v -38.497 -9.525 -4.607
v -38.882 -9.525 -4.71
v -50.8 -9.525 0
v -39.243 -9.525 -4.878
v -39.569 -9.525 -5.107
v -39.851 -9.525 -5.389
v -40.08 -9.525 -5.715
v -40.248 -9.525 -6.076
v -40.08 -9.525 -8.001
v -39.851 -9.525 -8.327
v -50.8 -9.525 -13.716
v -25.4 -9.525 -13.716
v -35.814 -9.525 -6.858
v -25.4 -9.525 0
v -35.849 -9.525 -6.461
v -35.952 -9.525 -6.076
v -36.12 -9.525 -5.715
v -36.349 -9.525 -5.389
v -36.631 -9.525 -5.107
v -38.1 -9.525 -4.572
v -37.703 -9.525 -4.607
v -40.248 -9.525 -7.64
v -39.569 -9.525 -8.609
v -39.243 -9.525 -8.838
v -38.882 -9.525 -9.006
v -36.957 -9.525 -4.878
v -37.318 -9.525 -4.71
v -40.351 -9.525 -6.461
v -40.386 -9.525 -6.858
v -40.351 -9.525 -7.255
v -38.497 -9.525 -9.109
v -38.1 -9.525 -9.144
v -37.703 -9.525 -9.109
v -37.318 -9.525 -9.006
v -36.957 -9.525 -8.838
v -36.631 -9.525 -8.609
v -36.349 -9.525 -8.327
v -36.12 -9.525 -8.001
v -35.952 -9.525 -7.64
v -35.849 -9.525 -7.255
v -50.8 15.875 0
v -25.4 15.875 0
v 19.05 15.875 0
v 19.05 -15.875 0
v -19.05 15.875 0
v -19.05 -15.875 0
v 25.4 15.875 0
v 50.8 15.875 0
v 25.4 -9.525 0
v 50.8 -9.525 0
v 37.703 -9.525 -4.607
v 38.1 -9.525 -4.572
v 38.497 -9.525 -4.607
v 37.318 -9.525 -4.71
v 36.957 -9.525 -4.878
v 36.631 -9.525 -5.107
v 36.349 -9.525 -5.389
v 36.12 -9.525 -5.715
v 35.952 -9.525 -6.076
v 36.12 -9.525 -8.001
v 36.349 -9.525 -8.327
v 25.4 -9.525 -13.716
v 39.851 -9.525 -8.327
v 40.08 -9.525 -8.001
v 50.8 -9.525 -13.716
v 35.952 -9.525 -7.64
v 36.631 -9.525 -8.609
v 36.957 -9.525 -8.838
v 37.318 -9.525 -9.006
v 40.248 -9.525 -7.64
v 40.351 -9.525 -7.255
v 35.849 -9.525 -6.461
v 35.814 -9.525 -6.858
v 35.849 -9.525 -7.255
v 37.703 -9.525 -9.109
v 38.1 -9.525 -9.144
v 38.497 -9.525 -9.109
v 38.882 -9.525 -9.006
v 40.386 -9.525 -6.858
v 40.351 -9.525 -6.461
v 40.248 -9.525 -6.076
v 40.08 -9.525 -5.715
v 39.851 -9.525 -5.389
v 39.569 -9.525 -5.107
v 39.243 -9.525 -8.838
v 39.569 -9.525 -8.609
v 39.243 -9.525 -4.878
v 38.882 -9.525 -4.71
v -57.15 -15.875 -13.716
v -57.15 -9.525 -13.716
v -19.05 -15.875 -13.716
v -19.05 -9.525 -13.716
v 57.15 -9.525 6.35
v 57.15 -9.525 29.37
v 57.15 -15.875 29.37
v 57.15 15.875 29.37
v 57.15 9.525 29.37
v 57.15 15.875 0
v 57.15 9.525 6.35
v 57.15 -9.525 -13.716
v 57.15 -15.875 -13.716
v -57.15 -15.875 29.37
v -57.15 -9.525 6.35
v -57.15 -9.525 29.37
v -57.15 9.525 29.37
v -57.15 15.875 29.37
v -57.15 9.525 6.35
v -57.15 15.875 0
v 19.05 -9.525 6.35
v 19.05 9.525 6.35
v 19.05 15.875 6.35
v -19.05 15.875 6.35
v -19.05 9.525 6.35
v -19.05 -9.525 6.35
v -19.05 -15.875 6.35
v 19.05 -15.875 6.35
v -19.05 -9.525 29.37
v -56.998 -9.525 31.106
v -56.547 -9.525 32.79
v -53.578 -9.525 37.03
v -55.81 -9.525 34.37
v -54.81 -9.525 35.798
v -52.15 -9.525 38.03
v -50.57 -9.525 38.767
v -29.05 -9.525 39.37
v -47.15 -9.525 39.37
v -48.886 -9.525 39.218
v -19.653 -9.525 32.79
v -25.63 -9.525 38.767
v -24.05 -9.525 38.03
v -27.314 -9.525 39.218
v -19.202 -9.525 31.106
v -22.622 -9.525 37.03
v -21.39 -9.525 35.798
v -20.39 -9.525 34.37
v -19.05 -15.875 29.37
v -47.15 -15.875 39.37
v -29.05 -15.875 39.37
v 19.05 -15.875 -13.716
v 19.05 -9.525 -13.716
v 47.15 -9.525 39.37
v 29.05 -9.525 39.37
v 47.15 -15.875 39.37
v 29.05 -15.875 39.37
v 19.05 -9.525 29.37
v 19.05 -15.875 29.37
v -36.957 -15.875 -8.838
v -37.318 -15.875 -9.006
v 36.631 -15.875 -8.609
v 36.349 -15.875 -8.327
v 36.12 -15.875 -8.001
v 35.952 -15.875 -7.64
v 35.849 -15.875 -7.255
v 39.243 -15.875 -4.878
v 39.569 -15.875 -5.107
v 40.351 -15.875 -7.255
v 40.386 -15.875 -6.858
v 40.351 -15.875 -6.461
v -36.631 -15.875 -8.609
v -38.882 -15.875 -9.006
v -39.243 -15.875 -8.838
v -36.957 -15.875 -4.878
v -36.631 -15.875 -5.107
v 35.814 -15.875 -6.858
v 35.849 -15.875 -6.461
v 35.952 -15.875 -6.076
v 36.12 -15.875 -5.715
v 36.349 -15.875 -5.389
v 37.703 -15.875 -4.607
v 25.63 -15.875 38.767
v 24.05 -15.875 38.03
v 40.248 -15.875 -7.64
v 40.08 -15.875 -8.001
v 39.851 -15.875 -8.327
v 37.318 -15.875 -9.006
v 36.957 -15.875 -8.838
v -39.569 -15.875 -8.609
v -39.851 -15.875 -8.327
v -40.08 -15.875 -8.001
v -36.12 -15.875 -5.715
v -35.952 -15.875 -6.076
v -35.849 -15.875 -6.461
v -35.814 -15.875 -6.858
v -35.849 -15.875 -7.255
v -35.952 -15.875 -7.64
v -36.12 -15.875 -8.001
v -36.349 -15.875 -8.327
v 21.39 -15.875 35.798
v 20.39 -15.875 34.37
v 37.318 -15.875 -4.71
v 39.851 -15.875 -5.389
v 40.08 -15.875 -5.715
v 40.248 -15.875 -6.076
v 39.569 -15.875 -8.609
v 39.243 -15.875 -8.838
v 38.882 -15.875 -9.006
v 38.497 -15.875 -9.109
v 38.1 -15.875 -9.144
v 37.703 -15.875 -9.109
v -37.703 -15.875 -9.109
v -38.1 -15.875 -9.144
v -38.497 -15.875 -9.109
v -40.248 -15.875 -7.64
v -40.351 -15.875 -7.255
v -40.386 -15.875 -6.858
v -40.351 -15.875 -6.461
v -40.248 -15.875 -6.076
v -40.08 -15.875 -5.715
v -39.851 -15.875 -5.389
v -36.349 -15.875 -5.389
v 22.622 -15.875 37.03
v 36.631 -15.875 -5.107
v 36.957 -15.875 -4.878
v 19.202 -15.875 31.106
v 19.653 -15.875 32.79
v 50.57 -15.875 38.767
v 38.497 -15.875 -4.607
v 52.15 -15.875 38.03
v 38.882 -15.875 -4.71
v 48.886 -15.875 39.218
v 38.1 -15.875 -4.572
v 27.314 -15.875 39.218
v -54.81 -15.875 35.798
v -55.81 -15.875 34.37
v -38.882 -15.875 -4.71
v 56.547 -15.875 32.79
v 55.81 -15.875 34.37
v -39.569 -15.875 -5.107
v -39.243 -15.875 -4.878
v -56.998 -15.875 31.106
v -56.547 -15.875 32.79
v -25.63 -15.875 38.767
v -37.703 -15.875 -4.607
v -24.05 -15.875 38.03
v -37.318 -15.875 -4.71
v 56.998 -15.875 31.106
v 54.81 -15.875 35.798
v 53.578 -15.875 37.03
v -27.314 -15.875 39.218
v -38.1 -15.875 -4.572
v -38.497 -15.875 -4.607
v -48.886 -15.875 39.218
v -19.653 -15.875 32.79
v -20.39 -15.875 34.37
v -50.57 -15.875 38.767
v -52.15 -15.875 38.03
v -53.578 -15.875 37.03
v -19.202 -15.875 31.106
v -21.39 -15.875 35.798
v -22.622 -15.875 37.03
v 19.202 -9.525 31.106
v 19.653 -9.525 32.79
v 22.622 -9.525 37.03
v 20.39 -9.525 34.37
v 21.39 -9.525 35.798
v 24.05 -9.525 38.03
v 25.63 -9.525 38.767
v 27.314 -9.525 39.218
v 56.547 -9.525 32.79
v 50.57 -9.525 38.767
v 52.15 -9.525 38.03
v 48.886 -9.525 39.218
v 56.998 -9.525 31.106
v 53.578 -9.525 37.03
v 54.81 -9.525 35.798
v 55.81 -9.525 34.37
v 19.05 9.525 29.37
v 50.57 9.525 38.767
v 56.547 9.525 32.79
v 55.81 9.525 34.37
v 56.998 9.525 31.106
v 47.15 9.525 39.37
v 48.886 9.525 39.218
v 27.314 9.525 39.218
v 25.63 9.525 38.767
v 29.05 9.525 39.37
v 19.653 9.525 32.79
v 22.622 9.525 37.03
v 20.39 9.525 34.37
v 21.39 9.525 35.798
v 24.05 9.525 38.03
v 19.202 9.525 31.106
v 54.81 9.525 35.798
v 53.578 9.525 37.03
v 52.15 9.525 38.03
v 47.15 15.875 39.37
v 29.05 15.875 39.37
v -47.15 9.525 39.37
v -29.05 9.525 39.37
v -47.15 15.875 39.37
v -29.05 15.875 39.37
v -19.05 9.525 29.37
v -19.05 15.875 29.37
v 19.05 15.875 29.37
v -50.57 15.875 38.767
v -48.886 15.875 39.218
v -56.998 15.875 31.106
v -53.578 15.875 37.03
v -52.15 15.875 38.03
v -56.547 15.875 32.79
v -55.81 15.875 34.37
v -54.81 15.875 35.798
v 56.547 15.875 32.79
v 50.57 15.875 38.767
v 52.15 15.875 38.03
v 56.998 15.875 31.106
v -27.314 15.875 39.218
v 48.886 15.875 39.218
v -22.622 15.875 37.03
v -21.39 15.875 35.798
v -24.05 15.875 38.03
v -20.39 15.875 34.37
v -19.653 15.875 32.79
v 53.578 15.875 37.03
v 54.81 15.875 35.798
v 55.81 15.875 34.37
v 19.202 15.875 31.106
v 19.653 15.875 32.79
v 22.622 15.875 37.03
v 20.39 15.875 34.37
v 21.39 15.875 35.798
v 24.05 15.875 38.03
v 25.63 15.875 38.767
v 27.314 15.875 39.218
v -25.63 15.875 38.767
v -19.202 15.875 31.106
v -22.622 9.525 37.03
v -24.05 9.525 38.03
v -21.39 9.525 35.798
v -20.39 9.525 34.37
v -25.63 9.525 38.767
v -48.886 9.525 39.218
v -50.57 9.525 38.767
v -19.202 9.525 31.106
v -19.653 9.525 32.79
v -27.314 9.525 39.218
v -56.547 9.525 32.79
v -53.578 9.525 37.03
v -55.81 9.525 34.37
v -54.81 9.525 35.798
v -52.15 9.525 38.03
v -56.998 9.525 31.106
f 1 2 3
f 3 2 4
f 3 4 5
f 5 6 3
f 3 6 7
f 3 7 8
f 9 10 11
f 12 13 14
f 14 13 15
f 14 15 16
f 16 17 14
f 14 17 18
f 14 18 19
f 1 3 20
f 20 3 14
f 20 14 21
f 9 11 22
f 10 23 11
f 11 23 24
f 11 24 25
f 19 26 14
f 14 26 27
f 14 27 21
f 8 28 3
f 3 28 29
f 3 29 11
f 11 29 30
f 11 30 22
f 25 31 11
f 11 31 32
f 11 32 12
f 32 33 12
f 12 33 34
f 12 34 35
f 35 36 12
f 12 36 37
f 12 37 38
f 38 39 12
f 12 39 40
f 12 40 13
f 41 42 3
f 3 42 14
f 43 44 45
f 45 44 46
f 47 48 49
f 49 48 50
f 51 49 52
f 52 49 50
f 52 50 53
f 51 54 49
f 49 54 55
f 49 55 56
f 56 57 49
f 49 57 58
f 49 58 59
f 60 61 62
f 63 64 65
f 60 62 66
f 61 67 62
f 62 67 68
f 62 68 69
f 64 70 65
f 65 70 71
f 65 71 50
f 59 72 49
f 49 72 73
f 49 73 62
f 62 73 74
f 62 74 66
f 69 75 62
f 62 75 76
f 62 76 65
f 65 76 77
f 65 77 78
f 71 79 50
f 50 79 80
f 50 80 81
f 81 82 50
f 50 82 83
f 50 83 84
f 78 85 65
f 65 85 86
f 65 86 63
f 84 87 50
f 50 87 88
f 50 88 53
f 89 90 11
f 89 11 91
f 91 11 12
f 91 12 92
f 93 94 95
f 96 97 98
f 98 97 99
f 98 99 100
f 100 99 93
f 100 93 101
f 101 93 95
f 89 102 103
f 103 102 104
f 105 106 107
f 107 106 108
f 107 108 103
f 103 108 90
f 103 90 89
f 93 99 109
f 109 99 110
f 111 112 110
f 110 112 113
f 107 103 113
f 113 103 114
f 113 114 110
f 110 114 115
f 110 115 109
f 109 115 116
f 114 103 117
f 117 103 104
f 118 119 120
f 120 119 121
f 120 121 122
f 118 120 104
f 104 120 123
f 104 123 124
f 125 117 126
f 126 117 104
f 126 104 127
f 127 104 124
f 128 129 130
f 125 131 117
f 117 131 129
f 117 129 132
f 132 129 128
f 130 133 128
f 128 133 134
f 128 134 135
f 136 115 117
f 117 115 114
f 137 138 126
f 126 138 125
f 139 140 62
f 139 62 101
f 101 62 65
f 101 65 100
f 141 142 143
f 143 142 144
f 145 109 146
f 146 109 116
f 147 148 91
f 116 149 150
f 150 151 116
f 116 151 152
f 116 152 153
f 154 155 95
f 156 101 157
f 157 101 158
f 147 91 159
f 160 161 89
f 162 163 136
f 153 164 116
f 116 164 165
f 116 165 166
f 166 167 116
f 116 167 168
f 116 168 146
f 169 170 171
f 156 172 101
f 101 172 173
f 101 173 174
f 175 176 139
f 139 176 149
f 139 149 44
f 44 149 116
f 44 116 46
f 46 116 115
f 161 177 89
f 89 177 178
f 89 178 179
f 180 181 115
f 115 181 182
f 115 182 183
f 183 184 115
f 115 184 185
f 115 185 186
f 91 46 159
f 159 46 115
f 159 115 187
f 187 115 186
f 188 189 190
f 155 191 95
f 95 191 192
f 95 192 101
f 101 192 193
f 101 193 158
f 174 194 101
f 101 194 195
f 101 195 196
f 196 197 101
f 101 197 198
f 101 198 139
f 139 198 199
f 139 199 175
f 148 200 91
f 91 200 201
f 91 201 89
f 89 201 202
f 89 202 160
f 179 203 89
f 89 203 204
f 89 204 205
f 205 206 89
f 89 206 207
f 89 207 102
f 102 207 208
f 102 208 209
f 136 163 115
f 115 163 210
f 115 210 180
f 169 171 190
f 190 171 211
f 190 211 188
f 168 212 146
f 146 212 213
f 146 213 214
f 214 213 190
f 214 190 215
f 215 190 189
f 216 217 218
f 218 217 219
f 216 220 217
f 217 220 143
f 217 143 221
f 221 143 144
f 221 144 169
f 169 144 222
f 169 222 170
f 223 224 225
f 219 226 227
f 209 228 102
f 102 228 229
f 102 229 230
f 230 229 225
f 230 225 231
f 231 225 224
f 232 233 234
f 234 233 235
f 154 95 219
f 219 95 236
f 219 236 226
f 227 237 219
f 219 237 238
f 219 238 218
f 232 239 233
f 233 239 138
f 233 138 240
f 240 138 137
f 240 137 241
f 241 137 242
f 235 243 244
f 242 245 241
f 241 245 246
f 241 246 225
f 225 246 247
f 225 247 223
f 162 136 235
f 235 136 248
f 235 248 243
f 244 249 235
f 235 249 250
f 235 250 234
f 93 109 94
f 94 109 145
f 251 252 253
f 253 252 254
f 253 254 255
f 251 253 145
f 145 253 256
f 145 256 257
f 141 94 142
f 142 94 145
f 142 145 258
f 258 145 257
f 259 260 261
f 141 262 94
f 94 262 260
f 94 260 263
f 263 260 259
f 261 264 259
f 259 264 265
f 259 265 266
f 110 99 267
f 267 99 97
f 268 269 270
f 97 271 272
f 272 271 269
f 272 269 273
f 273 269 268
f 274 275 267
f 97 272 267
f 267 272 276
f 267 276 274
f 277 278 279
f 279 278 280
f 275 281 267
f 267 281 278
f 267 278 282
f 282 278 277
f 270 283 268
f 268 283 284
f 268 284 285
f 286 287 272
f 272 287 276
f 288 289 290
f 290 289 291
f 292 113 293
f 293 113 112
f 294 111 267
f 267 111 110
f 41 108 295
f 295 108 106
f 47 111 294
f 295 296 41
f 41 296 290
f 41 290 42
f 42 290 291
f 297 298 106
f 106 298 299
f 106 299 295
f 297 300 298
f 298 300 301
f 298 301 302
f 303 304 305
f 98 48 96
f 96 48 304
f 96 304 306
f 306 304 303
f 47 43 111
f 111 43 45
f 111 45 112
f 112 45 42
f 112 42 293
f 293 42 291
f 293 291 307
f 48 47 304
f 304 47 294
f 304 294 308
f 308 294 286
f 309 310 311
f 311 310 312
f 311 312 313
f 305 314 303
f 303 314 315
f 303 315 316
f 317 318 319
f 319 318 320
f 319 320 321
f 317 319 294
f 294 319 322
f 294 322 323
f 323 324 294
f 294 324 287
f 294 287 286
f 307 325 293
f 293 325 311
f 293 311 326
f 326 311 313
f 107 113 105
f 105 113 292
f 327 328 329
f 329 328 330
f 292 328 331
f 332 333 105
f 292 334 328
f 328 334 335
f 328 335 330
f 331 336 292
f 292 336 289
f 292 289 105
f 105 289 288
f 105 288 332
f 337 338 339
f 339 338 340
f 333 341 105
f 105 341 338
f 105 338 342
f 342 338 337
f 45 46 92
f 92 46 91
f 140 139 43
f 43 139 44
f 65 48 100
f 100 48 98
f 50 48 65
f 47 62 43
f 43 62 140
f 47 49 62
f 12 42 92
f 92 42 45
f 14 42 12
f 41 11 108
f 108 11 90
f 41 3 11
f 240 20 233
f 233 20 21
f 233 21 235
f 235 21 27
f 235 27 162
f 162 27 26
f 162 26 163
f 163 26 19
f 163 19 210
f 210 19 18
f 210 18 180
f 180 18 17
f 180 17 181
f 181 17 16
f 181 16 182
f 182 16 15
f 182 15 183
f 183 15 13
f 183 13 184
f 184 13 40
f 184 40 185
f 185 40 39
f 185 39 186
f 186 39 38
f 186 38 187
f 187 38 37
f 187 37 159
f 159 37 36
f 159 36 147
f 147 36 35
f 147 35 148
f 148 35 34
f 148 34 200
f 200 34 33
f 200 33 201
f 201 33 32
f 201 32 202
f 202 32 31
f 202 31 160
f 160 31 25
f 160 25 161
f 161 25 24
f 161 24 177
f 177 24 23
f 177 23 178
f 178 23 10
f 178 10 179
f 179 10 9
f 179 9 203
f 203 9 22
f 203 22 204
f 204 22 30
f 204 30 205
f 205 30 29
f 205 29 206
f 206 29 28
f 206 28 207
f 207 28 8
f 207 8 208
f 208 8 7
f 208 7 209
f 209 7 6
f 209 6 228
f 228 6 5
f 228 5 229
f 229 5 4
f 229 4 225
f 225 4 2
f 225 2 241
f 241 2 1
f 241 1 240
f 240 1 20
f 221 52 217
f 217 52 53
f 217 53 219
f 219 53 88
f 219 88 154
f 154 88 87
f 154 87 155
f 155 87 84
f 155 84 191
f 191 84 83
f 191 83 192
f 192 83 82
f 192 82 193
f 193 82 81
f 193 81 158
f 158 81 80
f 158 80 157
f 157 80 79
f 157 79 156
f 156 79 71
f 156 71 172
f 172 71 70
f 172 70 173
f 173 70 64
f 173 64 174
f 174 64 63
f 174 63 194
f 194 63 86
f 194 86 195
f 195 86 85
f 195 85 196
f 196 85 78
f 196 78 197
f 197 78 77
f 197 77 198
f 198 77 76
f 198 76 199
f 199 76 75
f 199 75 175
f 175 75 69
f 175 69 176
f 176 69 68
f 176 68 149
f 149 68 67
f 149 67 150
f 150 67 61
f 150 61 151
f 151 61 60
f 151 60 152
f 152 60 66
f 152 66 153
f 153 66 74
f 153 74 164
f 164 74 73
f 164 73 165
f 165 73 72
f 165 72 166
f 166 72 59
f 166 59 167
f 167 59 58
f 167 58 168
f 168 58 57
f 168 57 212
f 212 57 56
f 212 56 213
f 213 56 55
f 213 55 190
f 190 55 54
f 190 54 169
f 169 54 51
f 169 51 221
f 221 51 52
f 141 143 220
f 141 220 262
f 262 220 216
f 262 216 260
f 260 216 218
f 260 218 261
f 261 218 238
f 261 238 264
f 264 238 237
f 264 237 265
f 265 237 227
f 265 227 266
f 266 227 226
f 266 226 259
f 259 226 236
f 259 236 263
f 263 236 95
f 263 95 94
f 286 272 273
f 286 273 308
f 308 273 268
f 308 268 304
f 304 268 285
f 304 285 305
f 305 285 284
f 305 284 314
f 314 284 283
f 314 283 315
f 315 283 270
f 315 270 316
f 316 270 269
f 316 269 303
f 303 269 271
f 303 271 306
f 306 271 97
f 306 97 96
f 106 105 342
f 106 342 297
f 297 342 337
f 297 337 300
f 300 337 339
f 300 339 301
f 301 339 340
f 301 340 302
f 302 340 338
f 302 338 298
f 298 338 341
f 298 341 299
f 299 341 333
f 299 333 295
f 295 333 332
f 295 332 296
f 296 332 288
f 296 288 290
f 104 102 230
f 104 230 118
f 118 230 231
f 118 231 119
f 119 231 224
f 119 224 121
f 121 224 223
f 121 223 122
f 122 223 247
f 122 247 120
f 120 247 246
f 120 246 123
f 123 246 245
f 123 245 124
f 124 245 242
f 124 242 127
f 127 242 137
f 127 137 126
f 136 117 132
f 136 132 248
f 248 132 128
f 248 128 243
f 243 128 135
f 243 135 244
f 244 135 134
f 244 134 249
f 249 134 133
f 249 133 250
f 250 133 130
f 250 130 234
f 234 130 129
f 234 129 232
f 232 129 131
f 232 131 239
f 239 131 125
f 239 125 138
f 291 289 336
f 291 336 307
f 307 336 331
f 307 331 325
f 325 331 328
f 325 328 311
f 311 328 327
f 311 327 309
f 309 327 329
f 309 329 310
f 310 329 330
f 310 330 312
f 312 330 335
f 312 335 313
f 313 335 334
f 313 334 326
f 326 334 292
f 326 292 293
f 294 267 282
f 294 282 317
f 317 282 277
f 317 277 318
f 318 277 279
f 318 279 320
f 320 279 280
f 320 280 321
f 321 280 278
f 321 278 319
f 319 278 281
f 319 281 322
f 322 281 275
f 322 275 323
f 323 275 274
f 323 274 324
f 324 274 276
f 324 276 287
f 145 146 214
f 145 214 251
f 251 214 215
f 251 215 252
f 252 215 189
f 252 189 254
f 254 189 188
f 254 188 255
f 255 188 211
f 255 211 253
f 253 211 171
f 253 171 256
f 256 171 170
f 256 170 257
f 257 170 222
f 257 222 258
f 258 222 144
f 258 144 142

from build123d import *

# Parameters (mm, degrees)
SKETCH1_W           = 114.3
SKETCH1_H           = 19.05
BOSS_EXTRUDE1_DEPTH = 6.35
SKETCH3_W           = 38.1
SKETCH3_H           = 33.02
SKETCH3_W_2         = 114.3
SKETCH3_H_2         = 13.716
SKETCH3_H_3         = 6.35
BOSS_EXTRUDE2_DEPTH = 6.35
SKETCH4_W           = 38.1
SKETCH4_H           = 33.02
BOSS_EXTRUDE3_DEPTH = 6.35
SKETCH6_W           = 38.1
SKETCH6_H           = 13.716
CUT_EXTRUDE1_DEPTH  = 74.900469552
BOSS_EXTRUDE4_DEPTH = 6.35
BOSS_EXTRUDE5_DEPTH = 6.35
BOSS_EXTRUDE6_DEPTH = 6.35
BOSS_EXTRUDE7_DEPTH = 6.35
SKETCH10_R          = 2.286
CUT_EXTRUDE2_DEPTH  = 74.900469552
FILLET2_R           = 10


with BuildPart() as part:
    # Sketch1 → Boss-Extrude1 (new body)
    with BuildSketch(Plane.XY):
        Rectangle(SKETCH1_W, SKETCH1_H)
    extrude(amount=BOSS_EXTRUDE1_DEPTH)

    # Sketch3 → Boss-Extrude2 (add)
    with BuildSketch(Plane(origin=(0, -9.525, 0), x_dir=(-1, 0, 0), z_dir=(0, -1, 0))):
        with Locations((38.1, -22.86)):
            Rectangle(SKETCH3_W, SKETCH3_H)
        with Locations((0, 6.858)):
            Rectangle(SKETCH3_W_2, SKETCH3_H_2)
        with Locations((0, -3.175)):
            Rectangle(SKETCH3_W_2, SKETCH3_H_3)
        with Locations((-38.1, -22.86)):
            Rectangle(SKETCH3_W, SKETCH3_H)
    extrude(amount=BOSS_EXTRUDE2_DEPTH)

    # Sketch4 → Boss-Extrude3 (add)
    with BuildSketch(Plane(origin=(0, 9.525, 0), x_dir=(1, 0, 0), z_dir=(0, 1, 0))):
        with Locations((38.1, -22.86)):
            Rectangle(SKETCH4_W, SKETCH4_H)
        Polygon((57.15, -6.35), (57.15, 0), (-57.15, 0), (-57.15, -6.35), (-19.05, -6.35), (19.05, -6.35), align=None)
        with Locations((-38.1, -22.86)):
            Rectangle(SKETCH4_W, SKETCH4_H)
    extrude(amount=BOSS_EXTRUDE3_DEPTH)

    # Sketch6 → Cut-Extrude1 (cut, through all)
    with BuildSketch(Plane(origin=(0, -9.525, 0), x_dir=(1, 0, 0), z_dir=(0, 1, 0))):
        with Locations((0, 6.858)):
            Rectangle(SKETCH6_W, SKETCH6_H)
    extrude(amount=-CUT_EXTRUDE1_DEPTH, mode=Mode.SUBTRACT)

    # Sketch5 → Boss-Extrude4 (add)
    with BuildSketch(Plane(origin=(57.15, 0, 0), x_dir=(0, 0, -1), z_dir=(1, 0, 0))):
        Polygon((13.716, -9.525), (0, 15.875), (0, -9.525), align=None)
    extrude(amount=-BOSS_EXTRUDE4_DEPTH)

    # Sketch7 → Boss-Extrude5 (add)
    with BuildSketch(Plane.ZY.offset(-19.05)):
        Polygon((-13.716, -9.525), (0, -9.525), (0, 15.875), align=None)
    extrude(amount=-BOSS_EXTRUDE5_DEPTH)

    # Sketch8 → Boss-Extrude6 (add)
    with BuildSketch(Plane(origin=(-19.05, 0, 0), x_dir=(0, 0, -1), z_dir=(1, 0, 0))):
        Polygon((13.716, -9.525), (0, 15.875), (0, -9.525), align=None)
    extrude(amount=-BOSS_EXTRUDE6_DEPTH)

    # Sketch9 → Boss-Extrude7 (add)
    with BuildSketch(Plane.ZY.offset(57.15)):
        Polygon((-13.716, -9.525), (0, -9.525), (0, 15.875), align=None)
    extrude(amount=-BOSS_EXTRUDE7_DEPTH)

    # Sketch10 → Cut-Extrude2 (cut, through all)
    with BuildSketch(Plane(origin=(0, -9.525, 0), x_dir=(1, 0, 0), z_dir=(0, 1, 0))):
        with Locations(Location((38.1, 6.858, 0), (0, 0, 270))):
            Circle(SKETCH10_R)
        with Locations(Location((-38.1, 6.858, 0), (0, 0, 270))):
            Circle(SKETCH10_R)
    extrude(amount=-CUT_EXTRUDE2_DEPTH, mode=Mode.SUBTRACT)

    # Fillet2
    fillet2_edges = [part.edges().sort_by_distance(p)[0] for p in [
        (-19.05, -12.7, 39.37),
        (-57.15, -12.7, 39.37),
        (57.15, -12.7, 39.37),
        (19.05, -12.7, 39.37),
        (19.05, 12.7, 39.37),
        (57.15, 12.7, 39.37),
        (-57.15, 12.7, 39.37),
        (-19.05, 12.7, 39.37),
    ]]
    fillet(fillet2_edges, radius=FILLET2_R)


solid = part.part
